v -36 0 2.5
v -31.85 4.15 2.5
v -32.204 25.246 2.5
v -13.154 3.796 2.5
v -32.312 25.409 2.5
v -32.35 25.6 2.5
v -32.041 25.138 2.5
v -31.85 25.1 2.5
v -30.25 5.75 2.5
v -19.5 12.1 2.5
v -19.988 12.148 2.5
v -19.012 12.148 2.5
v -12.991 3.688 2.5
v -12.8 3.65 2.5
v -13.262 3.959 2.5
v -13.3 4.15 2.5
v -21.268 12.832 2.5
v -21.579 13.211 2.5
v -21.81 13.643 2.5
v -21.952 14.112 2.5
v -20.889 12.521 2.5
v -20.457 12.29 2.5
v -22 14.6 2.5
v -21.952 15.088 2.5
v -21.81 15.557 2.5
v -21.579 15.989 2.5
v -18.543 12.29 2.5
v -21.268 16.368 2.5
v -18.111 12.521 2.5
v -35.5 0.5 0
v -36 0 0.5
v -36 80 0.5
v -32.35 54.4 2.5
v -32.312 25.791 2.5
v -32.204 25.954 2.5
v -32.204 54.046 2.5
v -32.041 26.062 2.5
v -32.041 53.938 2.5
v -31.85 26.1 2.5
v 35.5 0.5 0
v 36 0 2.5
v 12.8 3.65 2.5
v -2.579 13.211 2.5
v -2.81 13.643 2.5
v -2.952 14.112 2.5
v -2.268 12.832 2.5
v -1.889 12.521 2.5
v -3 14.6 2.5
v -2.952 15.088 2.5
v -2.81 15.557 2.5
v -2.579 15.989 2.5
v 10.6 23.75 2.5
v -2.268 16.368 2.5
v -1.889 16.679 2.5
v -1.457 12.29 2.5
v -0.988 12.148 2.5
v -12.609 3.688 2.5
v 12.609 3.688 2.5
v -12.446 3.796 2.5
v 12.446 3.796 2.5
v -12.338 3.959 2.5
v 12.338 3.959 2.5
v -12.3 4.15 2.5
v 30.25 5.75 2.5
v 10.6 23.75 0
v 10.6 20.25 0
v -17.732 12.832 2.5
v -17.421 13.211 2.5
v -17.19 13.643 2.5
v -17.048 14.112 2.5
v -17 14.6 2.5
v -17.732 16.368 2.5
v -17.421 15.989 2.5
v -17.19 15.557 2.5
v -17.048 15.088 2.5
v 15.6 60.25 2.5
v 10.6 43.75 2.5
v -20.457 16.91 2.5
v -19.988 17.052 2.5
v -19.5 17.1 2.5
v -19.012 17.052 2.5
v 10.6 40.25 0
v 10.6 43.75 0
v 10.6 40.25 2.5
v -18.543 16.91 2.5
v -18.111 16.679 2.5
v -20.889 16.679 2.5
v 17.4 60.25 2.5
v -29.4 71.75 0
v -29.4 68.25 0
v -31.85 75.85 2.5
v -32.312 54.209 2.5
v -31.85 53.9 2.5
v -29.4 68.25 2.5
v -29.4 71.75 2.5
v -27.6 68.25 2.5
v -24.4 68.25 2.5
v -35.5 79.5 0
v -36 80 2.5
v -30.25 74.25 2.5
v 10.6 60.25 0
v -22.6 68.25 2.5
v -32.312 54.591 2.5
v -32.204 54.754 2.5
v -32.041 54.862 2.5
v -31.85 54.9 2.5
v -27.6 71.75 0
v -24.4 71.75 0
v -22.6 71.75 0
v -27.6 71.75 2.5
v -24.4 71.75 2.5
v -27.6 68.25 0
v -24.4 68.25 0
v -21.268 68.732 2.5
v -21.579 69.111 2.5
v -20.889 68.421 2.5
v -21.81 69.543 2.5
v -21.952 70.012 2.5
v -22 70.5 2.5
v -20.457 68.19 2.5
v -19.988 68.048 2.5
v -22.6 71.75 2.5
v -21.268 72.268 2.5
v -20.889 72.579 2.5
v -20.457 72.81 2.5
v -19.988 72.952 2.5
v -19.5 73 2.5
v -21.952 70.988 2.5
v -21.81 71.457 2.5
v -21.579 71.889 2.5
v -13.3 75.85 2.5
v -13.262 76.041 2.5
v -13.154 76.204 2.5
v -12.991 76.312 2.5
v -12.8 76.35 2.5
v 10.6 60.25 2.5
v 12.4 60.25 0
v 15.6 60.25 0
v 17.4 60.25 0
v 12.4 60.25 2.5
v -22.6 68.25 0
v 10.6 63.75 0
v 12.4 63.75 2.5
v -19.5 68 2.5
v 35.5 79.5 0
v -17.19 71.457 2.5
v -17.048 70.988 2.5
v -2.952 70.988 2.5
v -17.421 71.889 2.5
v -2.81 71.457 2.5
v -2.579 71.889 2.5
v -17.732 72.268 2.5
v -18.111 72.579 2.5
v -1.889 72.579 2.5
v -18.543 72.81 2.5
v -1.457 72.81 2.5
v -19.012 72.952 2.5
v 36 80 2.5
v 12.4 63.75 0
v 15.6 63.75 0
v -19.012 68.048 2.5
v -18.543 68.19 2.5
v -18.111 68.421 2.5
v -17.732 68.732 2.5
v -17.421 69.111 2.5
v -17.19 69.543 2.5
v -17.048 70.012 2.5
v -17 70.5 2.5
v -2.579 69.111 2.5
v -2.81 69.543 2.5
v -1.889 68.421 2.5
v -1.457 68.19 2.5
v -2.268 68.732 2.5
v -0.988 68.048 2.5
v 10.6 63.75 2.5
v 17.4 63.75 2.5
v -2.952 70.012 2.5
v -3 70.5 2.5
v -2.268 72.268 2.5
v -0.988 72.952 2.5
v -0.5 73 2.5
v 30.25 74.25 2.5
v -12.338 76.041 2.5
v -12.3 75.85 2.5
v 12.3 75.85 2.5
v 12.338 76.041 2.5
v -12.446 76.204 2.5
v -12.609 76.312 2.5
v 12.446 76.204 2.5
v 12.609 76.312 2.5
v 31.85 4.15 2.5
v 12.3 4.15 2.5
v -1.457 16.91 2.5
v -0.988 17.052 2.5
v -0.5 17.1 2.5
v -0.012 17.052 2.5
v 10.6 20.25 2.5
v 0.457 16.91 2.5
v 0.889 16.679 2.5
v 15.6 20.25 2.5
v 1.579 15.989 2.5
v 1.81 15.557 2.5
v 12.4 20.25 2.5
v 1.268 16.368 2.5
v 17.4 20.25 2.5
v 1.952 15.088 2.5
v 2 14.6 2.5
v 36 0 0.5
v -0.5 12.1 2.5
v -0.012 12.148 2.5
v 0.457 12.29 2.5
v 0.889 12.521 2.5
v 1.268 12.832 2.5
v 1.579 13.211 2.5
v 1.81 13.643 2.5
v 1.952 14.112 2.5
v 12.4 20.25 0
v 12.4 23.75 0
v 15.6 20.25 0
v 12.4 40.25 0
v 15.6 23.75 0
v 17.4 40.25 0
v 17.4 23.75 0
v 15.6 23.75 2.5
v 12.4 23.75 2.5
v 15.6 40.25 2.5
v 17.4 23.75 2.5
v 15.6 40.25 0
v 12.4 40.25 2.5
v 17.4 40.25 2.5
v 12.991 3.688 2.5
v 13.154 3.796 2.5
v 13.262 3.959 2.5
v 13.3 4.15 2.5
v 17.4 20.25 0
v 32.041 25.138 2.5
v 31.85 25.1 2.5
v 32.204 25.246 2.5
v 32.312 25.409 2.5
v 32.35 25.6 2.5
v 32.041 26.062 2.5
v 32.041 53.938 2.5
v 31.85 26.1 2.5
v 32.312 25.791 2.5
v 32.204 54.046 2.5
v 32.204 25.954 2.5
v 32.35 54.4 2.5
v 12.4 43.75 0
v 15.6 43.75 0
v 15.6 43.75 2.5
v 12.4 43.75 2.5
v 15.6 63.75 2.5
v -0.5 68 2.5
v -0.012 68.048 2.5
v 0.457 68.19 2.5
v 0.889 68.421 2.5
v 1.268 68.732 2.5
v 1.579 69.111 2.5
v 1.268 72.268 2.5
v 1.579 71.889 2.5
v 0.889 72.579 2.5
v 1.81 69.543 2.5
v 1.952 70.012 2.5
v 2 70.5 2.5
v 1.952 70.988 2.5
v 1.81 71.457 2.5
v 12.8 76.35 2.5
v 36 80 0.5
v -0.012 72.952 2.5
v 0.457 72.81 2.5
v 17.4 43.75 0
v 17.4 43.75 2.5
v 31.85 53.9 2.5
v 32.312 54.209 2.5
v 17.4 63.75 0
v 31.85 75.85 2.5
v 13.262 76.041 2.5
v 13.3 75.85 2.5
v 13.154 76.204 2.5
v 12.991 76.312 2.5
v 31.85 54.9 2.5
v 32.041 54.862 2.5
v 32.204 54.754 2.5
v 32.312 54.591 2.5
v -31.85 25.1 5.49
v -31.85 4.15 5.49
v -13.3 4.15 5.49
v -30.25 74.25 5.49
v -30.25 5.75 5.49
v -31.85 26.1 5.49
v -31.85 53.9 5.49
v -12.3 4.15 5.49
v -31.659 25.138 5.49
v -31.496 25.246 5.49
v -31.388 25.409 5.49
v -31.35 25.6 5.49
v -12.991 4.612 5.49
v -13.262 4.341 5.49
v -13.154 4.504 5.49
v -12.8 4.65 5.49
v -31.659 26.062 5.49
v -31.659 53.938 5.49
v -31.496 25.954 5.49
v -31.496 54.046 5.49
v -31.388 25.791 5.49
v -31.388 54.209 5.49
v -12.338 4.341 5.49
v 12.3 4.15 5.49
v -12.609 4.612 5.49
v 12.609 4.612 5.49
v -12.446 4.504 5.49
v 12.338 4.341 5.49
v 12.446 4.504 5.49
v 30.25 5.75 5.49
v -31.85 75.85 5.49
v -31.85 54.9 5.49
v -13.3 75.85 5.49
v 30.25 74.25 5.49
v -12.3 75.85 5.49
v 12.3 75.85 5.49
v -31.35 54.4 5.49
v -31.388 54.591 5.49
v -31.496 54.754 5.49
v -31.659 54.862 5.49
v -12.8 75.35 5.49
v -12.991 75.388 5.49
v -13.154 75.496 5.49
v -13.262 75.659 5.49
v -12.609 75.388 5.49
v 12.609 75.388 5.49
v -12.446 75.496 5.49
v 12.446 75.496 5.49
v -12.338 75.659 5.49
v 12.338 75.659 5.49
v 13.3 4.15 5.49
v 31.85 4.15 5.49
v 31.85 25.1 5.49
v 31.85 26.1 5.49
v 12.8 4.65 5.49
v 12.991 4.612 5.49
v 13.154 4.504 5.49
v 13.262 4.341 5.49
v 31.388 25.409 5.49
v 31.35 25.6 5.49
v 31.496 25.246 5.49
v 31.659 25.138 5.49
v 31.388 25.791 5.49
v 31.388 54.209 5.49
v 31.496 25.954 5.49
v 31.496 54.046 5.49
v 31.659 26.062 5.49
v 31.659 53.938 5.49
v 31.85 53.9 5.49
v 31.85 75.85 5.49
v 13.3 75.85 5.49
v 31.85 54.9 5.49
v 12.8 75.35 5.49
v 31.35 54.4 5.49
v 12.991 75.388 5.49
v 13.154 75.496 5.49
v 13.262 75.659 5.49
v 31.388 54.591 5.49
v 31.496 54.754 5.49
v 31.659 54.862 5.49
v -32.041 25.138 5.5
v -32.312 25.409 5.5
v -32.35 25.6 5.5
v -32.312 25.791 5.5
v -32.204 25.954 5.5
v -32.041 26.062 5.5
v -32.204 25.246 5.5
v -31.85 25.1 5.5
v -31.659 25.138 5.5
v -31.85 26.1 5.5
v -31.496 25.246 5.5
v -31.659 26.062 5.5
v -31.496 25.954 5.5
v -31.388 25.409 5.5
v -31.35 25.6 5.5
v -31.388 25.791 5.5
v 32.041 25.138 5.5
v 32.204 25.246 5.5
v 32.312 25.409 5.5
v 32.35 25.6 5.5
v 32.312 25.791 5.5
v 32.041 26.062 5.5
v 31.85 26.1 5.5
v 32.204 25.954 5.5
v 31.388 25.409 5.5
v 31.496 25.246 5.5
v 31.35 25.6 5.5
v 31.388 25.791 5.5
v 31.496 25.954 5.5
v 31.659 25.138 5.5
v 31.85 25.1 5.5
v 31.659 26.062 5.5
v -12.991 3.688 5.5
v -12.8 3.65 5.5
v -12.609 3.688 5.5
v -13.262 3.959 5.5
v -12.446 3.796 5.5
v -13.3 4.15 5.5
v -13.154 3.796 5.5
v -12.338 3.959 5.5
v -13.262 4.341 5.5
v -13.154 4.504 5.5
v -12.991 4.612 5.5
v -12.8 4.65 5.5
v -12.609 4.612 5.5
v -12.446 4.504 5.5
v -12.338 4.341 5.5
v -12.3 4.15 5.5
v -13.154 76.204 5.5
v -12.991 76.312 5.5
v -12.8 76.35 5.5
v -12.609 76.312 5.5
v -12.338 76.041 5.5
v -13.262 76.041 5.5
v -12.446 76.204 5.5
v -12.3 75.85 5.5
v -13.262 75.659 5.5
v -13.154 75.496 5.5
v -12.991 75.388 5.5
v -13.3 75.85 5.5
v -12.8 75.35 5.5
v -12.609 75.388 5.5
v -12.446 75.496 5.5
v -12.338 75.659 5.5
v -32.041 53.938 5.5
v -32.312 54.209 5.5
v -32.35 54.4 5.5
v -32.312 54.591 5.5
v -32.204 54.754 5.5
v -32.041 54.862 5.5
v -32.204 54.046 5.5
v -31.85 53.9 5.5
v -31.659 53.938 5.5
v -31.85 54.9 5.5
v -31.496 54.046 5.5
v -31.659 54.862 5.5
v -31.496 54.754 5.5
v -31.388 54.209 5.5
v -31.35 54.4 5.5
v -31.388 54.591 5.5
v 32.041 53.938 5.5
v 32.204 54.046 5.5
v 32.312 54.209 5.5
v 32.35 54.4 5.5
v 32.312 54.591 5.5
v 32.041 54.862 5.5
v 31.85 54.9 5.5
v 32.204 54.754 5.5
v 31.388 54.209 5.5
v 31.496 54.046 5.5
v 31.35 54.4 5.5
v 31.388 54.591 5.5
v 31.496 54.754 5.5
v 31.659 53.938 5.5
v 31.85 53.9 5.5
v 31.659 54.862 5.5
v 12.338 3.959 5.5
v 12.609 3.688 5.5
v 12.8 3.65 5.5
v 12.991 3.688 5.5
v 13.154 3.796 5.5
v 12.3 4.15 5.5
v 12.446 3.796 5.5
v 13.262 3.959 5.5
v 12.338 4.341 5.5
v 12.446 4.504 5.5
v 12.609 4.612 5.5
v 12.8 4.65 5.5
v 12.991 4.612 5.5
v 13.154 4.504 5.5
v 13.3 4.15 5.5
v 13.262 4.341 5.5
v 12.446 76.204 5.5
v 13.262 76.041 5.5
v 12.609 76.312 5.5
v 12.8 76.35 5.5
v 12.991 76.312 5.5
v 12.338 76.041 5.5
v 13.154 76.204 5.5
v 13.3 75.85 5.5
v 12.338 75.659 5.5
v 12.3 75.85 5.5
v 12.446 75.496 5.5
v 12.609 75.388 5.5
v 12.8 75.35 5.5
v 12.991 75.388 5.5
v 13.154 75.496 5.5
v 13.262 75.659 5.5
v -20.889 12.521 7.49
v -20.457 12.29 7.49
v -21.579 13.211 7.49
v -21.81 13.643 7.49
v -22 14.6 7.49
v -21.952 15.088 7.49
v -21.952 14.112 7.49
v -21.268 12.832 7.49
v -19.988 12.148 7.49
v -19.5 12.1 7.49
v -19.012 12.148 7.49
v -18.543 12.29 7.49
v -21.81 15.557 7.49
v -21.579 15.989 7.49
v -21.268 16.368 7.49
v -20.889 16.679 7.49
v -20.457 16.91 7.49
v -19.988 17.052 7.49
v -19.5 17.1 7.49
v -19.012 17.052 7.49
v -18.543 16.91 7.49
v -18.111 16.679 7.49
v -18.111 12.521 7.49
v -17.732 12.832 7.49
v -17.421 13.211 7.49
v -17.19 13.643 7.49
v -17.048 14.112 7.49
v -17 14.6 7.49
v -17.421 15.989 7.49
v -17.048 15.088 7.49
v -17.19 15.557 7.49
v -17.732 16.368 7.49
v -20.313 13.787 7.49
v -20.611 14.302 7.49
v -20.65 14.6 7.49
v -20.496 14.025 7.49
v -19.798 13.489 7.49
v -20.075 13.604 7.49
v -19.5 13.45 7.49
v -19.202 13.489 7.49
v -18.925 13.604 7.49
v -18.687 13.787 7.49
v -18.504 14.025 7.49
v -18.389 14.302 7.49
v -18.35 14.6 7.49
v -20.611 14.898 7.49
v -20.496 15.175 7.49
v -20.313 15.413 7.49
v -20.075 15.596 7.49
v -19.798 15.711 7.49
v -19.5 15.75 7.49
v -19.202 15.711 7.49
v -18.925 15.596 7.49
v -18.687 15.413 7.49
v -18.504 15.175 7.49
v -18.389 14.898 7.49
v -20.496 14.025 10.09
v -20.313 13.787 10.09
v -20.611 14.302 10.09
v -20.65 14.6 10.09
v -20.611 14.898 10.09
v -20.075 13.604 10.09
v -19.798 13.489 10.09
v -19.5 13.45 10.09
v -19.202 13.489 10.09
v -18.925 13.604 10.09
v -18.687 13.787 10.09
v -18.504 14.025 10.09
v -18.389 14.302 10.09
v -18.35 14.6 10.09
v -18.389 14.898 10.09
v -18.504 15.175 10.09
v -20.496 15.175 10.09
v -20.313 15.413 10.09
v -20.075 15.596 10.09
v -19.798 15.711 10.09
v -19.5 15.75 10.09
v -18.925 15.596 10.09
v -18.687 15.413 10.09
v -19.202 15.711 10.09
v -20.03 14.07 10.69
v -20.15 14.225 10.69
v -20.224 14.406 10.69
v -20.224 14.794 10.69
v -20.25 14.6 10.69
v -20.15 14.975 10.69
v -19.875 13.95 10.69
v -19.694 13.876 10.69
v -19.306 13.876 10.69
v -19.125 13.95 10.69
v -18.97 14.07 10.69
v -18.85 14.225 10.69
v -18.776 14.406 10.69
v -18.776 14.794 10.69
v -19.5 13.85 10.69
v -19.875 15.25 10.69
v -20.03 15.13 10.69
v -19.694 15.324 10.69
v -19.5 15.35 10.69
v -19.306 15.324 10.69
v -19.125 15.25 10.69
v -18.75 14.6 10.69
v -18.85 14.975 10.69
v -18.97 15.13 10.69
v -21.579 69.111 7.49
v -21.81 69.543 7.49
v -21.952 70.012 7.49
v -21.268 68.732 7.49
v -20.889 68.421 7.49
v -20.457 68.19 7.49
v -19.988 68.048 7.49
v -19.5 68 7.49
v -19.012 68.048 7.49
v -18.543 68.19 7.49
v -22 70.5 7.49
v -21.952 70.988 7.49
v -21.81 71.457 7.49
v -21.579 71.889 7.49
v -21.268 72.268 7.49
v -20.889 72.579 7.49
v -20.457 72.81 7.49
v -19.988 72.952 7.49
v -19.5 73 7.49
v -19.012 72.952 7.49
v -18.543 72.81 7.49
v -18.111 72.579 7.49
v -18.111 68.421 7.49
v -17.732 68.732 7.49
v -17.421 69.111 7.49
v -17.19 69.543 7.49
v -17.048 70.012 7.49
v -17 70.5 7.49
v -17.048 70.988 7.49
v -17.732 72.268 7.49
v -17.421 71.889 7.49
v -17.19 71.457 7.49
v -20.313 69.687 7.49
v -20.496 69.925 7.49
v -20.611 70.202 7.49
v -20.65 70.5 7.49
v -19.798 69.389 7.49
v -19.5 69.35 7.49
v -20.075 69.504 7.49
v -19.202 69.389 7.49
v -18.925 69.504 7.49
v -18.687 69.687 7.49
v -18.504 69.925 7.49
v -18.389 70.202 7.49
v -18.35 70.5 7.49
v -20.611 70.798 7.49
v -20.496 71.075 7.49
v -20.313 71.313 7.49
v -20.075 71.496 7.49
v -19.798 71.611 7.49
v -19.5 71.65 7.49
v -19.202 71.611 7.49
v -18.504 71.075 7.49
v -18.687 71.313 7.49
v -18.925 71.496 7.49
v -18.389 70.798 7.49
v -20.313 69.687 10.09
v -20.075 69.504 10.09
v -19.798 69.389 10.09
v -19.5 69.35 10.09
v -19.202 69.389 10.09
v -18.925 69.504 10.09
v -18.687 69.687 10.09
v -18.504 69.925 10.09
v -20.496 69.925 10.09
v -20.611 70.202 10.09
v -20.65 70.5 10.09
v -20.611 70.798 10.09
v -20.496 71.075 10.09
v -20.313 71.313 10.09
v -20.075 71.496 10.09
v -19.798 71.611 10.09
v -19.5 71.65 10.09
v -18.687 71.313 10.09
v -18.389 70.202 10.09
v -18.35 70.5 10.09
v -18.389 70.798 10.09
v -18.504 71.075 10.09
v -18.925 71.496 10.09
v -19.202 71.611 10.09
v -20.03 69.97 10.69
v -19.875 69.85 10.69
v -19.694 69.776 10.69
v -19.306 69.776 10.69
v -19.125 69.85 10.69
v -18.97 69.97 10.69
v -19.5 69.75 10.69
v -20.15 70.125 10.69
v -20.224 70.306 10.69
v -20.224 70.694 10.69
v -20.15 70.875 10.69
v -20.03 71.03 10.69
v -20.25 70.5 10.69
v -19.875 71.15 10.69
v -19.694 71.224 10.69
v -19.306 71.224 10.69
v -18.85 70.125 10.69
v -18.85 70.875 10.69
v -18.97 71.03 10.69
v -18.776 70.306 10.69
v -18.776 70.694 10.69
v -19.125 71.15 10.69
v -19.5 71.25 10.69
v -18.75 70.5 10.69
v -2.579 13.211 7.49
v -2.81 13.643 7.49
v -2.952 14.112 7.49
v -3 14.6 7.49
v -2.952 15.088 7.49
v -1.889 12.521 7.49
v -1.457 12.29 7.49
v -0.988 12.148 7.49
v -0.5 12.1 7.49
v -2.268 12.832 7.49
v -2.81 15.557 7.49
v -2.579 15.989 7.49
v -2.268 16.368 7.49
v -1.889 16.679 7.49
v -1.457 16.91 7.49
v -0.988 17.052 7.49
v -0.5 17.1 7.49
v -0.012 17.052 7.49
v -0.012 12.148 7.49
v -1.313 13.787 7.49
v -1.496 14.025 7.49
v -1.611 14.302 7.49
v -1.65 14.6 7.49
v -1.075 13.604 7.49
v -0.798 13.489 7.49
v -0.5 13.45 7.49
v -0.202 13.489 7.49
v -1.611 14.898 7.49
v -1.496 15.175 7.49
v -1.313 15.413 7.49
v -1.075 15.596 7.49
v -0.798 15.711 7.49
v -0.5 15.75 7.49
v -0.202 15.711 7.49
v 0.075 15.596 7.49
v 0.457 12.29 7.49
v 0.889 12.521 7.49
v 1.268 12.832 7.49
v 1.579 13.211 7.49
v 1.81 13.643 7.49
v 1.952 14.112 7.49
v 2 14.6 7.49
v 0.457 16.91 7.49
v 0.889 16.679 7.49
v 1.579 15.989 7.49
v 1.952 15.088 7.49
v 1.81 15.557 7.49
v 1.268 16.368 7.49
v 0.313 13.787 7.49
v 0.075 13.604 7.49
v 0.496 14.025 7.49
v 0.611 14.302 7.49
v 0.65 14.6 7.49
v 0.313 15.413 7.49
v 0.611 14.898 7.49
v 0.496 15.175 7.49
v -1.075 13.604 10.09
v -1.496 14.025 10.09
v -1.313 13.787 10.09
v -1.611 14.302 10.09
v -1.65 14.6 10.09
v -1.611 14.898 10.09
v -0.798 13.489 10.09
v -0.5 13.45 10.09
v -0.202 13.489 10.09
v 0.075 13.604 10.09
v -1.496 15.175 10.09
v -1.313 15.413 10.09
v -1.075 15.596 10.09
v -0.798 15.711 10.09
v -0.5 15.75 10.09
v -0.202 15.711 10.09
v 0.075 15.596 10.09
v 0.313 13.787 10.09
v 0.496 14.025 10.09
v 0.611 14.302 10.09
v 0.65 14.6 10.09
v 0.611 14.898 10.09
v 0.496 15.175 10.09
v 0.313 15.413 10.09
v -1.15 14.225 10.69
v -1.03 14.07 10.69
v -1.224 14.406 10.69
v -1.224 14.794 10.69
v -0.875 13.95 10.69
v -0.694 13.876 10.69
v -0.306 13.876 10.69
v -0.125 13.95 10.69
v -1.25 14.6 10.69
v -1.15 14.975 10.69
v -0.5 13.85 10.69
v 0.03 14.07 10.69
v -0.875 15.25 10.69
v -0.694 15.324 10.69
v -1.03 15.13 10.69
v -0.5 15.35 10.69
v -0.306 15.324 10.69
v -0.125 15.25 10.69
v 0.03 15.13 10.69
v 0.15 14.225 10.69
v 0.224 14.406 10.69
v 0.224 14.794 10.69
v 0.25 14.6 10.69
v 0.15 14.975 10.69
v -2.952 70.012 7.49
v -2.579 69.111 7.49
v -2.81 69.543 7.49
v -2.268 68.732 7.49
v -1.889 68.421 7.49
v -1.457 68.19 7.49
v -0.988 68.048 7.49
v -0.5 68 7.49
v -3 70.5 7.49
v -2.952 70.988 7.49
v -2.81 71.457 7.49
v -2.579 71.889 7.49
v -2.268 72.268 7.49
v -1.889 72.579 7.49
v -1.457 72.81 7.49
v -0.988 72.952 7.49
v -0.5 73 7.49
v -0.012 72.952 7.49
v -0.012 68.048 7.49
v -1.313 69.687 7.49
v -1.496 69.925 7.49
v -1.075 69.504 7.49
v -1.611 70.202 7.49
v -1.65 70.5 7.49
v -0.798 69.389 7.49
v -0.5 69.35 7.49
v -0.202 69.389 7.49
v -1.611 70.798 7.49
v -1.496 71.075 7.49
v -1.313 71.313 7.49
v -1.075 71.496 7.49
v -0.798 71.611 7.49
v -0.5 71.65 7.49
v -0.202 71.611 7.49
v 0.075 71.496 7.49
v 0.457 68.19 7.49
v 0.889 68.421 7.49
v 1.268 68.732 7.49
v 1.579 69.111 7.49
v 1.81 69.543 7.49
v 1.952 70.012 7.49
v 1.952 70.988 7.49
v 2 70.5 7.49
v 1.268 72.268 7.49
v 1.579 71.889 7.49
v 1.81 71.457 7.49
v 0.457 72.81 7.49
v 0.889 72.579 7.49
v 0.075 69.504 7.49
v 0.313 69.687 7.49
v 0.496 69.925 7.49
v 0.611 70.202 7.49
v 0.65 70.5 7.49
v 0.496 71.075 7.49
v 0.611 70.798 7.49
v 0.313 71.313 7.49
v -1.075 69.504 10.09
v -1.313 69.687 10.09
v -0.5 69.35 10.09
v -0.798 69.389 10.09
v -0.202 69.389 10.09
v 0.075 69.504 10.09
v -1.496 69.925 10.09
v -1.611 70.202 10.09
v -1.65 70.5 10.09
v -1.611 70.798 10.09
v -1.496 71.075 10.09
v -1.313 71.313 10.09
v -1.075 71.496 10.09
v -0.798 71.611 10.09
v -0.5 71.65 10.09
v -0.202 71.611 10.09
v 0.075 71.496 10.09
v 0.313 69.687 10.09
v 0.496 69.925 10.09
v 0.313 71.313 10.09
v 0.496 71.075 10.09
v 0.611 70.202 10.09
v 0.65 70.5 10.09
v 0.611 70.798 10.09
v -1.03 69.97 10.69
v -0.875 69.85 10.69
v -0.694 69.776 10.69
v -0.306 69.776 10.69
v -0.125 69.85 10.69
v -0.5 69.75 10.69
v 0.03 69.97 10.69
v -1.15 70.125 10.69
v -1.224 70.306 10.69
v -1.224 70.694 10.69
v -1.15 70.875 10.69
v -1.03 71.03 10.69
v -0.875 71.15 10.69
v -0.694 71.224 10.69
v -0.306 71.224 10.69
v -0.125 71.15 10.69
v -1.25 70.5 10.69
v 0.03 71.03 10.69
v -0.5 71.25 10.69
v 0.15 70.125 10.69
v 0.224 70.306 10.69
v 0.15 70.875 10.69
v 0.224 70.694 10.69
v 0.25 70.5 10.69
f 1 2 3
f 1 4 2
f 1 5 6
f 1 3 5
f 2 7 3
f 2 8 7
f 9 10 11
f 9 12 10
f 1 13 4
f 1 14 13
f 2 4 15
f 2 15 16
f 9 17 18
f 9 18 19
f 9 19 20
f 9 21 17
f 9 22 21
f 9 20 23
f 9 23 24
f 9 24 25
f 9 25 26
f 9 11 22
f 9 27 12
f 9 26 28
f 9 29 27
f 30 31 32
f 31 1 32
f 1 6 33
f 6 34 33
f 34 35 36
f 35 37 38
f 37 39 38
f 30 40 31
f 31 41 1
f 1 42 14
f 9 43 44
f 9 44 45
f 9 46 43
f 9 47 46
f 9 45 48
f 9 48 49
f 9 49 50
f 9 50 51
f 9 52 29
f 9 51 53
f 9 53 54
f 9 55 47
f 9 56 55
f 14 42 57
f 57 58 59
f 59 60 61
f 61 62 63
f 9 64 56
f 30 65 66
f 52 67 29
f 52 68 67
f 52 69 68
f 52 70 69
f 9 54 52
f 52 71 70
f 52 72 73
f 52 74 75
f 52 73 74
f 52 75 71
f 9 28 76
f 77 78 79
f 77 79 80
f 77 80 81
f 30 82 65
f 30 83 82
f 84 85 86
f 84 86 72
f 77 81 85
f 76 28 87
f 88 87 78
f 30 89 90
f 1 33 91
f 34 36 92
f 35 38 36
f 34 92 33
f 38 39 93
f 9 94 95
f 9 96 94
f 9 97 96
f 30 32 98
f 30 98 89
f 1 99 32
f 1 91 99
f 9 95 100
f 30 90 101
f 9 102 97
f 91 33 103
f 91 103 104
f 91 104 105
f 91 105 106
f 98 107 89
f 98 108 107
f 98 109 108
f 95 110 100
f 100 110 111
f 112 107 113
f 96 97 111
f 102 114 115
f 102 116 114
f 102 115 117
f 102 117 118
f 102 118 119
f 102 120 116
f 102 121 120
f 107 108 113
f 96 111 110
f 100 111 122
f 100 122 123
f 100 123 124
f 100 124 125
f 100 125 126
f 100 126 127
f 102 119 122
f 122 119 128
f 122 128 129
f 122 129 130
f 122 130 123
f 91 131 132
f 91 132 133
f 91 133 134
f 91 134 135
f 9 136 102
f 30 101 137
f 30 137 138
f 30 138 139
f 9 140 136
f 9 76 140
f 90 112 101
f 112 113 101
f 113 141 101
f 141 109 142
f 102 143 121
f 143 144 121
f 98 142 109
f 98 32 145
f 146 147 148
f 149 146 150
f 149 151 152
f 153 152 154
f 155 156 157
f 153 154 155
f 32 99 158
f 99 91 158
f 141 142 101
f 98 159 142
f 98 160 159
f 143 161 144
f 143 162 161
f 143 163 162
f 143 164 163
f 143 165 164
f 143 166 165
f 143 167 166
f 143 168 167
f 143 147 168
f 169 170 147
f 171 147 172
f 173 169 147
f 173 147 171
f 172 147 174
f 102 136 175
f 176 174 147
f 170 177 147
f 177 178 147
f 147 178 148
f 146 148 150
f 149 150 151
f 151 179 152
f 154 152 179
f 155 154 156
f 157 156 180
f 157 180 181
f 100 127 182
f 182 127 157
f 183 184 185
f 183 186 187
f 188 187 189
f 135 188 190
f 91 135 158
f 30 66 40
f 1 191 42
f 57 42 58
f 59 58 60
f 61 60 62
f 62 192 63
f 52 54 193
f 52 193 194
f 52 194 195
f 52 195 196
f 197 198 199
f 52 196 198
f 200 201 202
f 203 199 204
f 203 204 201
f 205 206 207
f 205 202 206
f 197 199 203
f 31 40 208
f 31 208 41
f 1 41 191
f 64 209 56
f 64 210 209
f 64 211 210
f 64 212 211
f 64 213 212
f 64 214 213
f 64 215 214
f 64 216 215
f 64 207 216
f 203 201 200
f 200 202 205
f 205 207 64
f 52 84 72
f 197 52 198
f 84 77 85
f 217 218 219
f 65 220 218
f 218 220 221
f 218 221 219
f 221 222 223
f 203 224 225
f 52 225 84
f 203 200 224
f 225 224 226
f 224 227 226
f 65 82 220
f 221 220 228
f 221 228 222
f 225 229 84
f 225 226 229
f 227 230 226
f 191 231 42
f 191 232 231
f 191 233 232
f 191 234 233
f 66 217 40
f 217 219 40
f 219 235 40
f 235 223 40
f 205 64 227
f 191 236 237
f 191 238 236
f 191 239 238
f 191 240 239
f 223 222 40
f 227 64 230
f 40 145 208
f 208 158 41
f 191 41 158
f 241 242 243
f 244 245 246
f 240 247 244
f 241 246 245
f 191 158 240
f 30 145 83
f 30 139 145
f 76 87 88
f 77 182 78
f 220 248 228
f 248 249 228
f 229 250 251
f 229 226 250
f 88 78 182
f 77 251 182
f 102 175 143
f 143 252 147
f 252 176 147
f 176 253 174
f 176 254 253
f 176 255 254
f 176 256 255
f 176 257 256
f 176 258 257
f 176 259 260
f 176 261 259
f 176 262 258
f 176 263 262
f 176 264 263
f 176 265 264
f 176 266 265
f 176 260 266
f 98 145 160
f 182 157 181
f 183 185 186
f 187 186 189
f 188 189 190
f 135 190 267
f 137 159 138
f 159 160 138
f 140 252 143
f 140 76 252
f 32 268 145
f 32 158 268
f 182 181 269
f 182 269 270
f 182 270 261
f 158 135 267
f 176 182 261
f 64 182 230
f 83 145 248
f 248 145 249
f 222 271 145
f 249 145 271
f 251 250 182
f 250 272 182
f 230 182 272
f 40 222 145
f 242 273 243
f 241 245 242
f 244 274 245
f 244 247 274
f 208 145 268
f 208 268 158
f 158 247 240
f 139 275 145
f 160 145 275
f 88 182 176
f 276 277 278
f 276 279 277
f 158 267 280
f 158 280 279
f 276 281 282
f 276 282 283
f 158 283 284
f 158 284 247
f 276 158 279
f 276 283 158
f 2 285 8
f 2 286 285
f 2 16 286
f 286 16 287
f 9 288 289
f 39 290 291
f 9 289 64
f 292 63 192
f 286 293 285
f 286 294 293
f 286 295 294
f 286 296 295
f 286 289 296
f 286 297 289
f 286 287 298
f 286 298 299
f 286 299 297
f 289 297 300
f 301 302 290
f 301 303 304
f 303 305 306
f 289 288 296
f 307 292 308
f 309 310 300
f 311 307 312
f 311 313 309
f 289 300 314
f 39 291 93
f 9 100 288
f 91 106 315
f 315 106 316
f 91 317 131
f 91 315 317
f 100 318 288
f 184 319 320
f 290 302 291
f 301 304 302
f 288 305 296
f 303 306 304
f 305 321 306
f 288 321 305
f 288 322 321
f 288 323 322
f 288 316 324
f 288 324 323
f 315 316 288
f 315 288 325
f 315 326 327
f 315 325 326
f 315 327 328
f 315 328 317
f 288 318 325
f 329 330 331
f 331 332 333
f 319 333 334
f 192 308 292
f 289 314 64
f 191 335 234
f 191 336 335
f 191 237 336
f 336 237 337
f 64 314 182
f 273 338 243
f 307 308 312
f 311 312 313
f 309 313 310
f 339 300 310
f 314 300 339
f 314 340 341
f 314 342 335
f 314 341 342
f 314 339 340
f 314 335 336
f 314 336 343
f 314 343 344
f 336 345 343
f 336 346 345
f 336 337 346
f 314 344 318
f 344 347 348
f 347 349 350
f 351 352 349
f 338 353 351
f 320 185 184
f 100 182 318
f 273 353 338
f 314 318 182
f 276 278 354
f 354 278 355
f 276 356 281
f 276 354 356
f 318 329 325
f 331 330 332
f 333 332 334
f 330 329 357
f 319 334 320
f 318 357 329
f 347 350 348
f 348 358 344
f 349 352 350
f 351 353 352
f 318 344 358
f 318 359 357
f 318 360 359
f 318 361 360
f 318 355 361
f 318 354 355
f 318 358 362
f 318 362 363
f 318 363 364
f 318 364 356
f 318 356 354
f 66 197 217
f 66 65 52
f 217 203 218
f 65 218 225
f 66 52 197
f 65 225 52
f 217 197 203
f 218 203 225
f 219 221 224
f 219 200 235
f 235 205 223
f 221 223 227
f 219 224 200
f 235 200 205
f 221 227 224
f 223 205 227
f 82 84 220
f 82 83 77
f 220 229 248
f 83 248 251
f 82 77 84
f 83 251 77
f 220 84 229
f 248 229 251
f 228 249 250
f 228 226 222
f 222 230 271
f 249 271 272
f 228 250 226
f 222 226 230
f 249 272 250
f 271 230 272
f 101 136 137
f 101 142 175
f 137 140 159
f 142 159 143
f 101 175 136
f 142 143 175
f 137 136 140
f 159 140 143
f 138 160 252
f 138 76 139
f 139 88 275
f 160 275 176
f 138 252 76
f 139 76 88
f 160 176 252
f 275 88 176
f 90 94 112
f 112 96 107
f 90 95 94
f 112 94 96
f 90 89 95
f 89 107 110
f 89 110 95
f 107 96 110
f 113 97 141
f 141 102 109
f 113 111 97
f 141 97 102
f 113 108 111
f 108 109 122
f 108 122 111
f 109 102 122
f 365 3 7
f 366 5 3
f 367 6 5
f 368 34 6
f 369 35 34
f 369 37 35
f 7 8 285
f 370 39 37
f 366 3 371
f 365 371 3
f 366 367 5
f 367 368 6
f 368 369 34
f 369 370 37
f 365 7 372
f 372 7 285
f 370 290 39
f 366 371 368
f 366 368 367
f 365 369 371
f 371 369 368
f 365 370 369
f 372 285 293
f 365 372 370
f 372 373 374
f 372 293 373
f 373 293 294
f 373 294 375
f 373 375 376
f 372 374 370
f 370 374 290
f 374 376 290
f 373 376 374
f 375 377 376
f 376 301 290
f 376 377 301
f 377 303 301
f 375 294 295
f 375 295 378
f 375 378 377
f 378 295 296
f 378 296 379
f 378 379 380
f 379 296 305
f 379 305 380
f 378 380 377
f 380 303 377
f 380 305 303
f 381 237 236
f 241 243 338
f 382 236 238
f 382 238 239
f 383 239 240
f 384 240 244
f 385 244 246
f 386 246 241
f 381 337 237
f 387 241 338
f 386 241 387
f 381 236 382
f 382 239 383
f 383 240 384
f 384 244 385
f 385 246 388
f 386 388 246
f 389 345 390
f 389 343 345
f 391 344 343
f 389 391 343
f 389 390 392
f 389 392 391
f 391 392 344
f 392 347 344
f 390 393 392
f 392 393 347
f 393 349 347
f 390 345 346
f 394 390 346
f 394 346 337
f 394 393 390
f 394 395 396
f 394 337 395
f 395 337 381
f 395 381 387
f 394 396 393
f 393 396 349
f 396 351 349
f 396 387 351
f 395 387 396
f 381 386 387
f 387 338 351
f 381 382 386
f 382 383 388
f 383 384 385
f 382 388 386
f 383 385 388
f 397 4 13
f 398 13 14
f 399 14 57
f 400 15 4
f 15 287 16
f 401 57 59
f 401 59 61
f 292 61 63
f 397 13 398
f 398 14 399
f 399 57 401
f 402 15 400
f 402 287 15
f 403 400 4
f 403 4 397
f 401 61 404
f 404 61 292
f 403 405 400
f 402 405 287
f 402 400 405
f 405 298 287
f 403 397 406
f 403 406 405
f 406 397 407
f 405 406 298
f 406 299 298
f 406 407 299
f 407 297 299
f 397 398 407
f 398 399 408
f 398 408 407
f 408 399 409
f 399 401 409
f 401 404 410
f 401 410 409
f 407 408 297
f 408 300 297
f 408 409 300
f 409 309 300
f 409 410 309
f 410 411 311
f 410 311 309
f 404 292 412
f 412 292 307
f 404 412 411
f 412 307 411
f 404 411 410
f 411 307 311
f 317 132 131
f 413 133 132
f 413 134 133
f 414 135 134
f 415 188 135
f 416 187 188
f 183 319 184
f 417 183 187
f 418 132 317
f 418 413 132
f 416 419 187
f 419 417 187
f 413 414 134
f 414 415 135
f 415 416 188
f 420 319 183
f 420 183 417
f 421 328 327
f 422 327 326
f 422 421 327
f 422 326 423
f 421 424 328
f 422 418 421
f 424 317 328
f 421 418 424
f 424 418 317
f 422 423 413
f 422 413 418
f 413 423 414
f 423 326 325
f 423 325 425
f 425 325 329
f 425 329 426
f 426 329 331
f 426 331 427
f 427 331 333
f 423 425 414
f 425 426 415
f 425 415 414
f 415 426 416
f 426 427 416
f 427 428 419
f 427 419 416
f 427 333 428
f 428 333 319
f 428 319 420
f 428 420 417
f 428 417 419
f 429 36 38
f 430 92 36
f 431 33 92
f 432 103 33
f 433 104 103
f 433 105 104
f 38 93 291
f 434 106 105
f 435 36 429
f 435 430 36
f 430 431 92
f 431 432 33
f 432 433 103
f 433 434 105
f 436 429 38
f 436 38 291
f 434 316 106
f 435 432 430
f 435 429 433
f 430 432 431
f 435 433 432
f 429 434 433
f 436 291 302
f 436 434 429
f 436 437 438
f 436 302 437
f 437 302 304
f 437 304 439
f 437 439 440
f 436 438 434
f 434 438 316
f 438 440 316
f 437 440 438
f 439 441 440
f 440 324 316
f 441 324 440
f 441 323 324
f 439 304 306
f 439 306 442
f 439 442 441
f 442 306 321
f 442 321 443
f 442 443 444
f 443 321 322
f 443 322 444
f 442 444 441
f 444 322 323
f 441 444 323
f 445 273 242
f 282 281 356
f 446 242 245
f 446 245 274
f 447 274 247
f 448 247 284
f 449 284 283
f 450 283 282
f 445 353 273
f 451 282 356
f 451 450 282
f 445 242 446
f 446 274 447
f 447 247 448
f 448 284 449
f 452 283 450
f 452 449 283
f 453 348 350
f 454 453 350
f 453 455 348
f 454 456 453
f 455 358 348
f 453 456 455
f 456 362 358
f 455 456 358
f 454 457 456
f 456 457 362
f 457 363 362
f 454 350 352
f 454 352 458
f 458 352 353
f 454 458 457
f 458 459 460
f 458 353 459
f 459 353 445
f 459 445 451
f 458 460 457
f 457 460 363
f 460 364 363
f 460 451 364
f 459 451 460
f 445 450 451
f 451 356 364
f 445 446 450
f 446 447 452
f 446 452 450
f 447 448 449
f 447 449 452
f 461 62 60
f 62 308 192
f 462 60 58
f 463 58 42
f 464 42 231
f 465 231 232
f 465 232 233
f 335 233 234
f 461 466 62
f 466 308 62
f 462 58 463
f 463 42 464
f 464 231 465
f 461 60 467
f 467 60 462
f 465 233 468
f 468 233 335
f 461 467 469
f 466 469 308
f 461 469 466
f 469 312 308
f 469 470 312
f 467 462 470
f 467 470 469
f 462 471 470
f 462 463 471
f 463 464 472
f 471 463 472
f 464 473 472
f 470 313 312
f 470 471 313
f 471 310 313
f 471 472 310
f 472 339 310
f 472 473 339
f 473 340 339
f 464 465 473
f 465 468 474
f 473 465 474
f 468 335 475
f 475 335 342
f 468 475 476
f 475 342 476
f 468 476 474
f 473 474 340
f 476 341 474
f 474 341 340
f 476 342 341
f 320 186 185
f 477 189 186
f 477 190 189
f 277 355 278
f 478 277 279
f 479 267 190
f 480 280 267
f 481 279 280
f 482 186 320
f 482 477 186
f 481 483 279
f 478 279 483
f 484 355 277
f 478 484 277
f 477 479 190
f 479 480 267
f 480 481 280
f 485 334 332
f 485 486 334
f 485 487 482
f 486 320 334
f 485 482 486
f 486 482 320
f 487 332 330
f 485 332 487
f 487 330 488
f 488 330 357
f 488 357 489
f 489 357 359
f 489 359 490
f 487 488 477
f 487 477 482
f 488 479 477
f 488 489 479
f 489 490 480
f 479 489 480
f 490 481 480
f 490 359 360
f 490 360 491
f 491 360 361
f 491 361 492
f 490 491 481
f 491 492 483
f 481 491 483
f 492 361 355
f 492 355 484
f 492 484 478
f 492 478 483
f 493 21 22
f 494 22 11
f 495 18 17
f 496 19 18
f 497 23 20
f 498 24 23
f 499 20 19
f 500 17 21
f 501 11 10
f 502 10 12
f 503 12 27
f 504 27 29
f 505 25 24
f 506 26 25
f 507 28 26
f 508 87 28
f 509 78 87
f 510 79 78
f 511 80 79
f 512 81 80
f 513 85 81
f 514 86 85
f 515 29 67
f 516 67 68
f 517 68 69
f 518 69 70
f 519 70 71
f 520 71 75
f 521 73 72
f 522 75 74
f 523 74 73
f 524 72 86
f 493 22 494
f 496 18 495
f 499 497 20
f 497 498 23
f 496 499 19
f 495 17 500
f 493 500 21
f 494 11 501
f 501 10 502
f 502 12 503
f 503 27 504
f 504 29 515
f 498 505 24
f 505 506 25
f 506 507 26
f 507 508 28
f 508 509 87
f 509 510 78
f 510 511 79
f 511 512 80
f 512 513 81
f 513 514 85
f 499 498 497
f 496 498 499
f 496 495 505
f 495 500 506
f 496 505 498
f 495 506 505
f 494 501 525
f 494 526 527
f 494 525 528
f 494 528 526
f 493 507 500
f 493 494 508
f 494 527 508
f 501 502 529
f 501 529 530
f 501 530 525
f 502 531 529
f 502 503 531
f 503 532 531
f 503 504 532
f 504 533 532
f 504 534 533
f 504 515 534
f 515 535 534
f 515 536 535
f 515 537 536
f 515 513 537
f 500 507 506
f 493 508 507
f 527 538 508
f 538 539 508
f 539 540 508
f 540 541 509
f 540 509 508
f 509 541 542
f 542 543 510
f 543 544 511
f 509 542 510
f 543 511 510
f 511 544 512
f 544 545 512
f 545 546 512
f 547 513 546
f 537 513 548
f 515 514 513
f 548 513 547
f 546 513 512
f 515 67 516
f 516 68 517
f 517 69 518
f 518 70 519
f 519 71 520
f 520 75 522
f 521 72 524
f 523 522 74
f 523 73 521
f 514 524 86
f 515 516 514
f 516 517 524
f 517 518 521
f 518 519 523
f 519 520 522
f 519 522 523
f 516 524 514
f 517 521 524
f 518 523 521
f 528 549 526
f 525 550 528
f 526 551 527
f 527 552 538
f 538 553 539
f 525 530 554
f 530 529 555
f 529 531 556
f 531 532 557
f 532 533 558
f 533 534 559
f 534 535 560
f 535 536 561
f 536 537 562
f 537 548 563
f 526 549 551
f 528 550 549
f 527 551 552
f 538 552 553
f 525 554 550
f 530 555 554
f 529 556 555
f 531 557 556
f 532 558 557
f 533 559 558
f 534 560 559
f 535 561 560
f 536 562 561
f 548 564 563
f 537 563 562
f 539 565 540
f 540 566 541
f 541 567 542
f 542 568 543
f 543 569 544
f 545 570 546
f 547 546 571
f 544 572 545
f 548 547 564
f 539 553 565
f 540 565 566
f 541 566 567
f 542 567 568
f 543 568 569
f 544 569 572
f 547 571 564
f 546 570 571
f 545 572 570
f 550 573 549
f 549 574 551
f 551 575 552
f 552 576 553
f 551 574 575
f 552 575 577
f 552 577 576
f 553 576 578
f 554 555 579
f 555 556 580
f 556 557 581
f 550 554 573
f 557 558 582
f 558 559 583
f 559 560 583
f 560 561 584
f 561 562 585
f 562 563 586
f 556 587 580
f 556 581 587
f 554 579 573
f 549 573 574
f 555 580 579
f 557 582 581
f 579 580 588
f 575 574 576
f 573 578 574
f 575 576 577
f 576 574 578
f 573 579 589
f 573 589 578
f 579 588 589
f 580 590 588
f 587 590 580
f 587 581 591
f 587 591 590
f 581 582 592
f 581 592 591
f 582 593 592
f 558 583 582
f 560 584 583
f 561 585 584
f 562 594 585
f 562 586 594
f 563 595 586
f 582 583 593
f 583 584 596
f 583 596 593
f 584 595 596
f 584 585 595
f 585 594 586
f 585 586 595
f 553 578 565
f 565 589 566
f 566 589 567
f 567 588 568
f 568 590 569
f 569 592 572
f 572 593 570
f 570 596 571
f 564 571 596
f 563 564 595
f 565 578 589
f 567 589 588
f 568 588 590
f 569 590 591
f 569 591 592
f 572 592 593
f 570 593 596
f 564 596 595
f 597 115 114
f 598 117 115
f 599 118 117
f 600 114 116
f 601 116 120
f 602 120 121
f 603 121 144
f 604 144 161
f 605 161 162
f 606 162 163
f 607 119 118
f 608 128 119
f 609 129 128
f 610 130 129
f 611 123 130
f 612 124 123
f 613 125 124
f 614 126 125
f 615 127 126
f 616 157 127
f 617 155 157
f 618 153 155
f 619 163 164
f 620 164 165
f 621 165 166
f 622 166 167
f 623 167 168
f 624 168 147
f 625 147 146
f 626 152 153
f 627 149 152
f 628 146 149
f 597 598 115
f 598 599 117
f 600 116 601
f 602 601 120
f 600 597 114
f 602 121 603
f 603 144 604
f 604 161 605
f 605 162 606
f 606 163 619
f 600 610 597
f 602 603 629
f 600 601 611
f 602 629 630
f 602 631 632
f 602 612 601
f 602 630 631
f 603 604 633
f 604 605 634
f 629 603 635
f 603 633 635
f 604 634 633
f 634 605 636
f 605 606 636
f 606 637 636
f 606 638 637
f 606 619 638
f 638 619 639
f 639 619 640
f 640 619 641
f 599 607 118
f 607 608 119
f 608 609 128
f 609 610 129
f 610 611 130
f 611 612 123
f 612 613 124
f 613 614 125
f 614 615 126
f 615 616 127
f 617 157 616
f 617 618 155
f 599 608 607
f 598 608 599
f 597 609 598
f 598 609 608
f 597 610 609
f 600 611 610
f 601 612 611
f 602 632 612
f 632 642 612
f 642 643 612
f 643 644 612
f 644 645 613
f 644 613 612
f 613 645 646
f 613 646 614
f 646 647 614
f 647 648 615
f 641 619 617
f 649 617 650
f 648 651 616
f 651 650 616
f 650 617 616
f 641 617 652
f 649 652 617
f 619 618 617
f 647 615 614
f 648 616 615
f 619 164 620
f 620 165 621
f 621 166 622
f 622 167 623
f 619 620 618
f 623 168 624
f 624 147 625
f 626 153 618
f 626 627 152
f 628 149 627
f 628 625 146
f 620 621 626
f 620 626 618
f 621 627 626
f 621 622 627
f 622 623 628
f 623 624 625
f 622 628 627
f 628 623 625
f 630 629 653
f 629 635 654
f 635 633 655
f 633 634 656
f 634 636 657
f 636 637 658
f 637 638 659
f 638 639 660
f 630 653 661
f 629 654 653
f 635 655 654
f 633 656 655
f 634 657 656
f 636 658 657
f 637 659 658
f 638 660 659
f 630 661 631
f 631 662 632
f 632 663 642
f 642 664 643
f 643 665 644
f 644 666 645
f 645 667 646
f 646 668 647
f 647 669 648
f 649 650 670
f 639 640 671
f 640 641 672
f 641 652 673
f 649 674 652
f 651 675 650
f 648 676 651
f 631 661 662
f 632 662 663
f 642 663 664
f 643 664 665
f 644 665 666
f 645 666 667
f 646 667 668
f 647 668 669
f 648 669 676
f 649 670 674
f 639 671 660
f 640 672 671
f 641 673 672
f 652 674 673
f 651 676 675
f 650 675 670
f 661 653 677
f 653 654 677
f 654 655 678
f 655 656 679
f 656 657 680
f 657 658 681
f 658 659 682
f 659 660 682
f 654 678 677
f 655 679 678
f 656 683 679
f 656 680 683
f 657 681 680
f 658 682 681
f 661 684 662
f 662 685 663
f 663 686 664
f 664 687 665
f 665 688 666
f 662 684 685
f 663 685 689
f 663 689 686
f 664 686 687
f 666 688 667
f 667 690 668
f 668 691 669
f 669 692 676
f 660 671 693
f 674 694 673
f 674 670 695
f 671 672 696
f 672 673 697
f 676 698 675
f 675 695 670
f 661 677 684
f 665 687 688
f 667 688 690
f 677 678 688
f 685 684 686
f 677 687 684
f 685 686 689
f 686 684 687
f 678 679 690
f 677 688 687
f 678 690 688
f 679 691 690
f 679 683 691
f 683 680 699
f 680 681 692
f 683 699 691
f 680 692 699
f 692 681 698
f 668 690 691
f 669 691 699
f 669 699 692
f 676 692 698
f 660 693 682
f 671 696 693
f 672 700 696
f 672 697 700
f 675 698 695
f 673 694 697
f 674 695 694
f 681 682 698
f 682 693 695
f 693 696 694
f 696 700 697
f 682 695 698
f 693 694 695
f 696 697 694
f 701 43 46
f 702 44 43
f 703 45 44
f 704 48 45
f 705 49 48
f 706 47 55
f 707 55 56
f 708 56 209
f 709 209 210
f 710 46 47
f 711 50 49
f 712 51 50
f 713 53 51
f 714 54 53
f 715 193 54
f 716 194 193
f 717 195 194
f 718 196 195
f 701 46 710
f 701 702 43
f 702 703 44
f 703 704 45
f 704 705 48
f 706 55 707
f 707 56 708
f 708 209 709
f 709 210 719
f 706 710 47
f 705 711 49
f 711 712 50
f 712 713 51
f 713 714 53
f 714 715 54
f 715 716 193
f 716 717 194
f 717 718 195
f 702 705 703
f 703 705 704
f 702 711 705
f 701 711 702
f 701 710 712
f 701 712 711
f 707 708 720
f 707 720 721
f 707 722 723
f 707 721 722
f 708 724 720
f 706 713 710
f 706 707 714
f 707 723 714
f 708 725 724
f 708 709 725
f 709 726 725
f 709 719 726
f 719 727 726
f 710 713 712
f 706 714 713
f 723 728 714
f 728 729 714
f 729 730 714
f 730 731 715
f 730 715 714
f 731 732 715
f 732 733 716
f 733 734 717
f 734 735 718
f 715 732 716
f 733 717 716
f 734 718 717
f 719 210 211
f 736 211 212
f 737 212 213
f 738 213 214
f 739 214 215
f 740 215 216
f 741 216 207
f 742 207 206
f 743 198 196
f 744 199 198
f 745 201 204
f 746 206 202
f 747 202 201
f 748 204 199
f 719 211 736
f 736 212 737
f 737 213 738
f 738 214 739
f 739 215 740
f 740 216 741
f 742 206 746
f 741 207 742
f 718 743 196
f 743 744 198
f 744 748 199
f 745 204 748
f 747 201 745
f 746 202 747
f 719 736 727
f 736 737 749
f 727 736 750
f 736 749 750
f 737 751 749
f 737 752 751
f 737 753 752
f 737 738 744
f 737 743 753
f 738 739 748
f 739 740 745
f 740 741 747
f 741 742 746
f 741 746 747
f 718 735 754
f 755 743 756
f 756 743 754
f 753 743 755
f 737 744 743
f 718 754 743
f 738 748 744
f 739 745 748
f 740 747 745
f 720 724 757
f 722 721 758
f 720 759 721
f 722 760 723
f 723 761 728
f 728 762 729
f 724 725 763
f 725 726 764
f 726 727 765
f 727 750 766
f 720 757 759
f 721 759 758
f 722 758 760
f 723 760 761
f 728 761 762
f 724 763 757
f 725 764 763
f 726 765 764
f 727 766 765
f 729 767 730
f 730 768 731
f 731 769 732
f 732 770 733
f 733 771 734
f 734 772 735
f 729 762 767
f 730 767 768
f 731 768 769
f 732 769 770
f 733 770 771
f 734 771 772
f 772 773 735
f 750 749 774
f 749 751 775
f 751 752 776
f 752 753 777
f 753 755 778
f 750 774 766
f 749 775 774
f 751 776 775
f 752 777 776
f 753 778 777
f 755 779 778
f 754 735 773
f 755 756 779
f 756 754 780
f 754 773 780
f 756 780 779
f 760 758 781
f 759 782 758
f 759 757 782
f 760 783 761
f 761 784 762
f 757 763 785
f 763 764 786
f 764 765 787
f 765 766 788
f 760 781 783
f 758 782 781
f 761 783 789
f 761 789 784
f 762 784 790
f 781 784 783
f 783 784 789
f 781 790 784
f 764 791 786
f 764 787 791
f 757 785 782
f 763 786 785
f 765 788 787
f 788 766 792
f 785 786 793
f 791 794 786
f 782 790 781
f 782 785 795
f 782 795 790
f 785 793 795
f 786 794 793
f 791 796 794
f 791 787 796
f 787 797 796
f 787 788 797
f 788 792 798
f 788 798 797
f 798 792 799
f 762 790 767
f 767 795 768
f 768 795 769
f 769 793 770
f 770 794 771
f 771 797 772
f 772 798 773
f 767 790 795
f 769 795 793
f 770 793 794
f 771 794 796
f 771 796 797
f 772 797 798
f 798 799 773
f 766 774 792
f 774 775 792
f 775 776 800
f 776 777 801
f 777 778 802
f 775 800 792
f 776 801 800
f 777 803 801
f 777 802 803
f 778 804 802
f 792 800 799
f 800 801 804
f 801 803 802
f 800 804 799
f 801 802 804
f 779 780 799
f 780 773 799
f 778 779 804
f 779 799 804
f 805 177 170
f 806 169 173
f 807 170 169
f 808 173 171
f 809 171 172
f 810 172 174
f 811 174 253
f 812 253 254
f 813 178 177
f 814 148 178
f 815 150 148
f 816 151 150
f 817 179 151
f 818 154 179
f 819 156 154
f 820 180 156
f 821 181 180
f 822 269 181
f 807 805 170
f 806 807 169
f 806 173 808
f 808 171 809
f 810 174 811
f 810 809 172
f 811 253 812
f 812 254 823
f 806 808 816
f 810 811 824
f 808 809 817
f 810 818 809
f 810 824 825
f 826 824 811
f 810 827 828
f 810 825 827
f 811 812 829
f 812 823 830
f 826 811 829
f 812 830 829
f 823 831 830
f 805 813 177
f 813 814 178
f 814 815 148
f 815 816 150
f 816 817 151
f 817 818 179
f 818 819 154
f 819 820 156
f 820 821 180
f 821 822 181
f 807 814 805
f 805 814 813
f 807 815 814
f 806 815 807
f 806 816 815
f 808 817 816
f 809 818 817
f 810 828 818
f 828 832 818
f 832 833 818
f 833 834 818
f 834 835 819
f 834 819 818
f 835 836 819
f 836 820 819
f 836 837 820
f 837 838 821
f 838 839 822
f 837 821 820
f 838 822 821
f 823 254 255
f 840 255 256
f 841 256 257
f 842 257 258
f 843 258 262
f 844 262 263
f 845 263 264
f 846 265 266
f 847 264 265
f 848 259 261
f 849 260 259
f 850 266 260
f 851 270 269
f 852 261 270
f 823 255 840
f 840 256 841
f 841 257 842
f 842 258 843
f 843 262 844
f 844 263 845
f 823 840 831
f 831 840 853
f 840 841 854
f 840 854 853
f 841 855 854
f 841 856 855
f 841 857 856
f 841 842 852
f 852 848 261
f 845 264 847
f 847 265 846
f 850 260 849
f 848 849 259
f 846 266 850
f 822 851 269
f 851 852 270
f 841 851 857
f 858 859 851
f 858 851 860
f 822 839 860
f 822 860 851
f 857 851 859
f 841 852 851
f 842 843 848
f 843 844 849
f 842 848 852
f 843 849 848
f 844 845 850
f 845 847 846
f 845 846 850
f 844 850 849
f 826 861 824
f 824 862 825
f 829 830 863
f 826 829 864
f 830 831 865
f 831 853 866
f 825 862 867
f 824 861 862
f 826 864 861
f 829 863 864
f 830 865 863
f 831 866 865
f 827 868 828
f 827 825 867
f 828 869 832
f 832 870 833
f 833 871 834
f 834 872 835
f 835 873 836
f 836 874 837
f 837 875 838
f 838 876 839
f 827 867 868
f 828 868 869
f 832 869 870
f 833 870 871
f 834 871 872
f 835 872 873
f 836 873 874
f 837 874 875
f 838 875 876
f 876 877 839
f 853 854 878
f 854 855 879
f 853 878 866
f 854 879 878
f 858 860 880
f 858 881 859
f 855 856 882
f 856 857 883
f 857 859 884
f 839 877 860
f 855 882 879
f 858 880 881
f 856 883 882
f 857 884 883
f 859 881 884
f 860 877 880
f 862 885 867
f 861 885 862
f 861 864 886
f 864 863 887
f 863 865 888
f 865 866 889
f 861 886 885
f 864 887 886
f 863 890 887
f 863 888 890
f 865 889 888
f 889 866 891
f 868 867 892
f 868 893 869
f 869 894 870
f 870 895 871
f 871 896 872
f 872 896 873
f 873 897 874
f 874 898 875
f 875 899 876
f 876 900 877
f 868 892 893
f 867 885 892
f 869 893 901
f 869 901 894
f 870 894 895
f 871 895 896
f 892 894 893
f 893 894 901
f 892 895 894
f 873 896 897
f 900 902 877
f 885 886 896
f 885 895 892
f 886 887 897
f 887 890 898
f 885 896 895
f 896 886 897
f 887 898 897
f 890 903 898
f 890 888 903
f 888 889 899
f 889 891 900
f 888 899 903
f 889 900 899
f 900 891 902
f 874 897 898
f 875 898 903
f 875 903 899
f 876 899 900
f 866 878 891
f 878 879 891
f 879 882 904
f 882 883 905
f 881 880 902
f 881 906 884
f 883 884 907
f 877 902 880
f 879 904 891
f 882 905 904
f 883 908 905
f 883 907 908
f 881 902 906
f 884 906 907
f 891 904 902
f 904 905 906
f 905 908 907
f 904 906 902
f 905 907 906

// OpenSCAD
// file: gh_s37d.scad
// Tiny Engineer parts adapted from the EMAX ES9051 export to fit a GH-S37D servo.
//
// The ES9051 and GH-S37D are close in size. The main difference is the
// mounting-tab span, so each servo pocket's tab slot is lengthened at both
// ends. Everything else is the unchanged ES9051 mesh.
//
// Change the sizes below to match your servo (measure with calipers), then
// run ./build.sh to regenerate the STLs.

// ── GH-S37D sizes (mm) ──────────────────────────────────────────────────────
servo_body_width  = 20;    // body length, tabs not included
servo_mount_width = 5.45;  // how far each tab sticks out from the body (5.2 from listings was too short)
clearance         = 0.3;   // gap per side, same as the original model

// ES9051 values the base meshes were exported with (do not change)
base_body_width   = 20;
base_mount_width  = 4.6;

// ── Tab slots in the ES9051 meshes ─────────────────────────────────────────
// Found by measuring the meshes. All slots run along X.
// [center_x, half_span, [y_min, y_max], [z_min, z_max]]
// The y/z ranges include the open side the servo is dropped in from.
slots = [
    ["Chest", [
        [-0.950, 14.900, [-21.30, -19.60], [16.30, 27.82]],   // arm servo
        [-0.950, 14.900, [19.60, 21.30], [16.30, 27.82]],     // arm servo
        [-0.950, 14.900, [-4.70, 4.70], [19.90, 27.82]]       // neck servo
    ]],
];

new_half_span = servo_body_width / 2 + servo_mount_width + clearance;

function slots_for(part) = [for (s = slots) if (s[0] == part) s[1]][0];

// Cut both ends of each tab slot out to the new span.
// If the new span is shorter, nothing is cut (the servo still fits).
module tab_slot_extensions(part) {
    eps = 0.01;
    for (s = slots_for(part)) {
        cx = s[0]; hs = s[1]; y = s[2]; z = s[3];
        if (new_half_span > hs)
            for (dir = [-1, 1]) {
                x0 = cx + dir * (hs - eps);
                x1 = cx + dir * new_half_span;
                // eps overlap on y/z keeps the cut from sharing faces with
                // the slot walls, which gives clean manifold output
                translate([min(x0, x1), y[0] - eps, z[0] - eps])
                    cube([abs(x1 - x0), y[1] - y[0] + 2 * eps, z[1] - z[0] + 2 * eps]);
            }
    }
}

module adapted_part(part) {
    difference() {
        import(str("base/es9051/", part, ".stl"), convexity = 10);
        tab_slot_extensions(part);
    }
}
// file: torso_body.scad
// Boxy torso, styled like improve_robot.jpg. Used by Torso.scad, the desk
// parts and RobotScene.scad.
//
// The top is the original Chest (with the GH-S37D tab slots from gh_s37d.scad),
// unchanged: the two arm servos lie in it with their shafts out the sides, and
// the neck servo stands in the middle, shaft up. So the arms and the M5Dial
// head mount exactly as before. Under it is a new hollow lower body that
// replaces Belly, BellyJoint, Bell and the Chair. Its open bottom drops into
// the socket in the desk top (see desk_parts.scad), with no screws.
//
// Arm clearance: the one-piece forearms lean in so the hands meet in front of
// the body. So the Chest's side scoops are kept, and the lower body's front is
// set back 3 mm, with a 45-degree slope up to the Chest's front so it
// prints without supports. The arms clear the body from straight up down to about 40
// degrees below horizontal toward the front (the typing pose). They can't hang
// straight down, same as with the original Belly.
//
// Cables: the servo cables go down through the Chest's holes into the lower
// body and out the open bottom into the desk. The Dial's cables run down a
// groove in the back, which carries on into the desk socket.
//
// Torso frame (same as Chest): +x front, +y robot width, +z up. The Chest's
// bottom is at z = 0. The neck servo shaft is at x = neck_shaft_x, y = 0.

include <gh_s37d.scad>

// ── Chest outline (measured from Chest.stl) ────────────────────────────────
chest_half   = [17.35, 28];   // half depth (x), half width (y)
chest_top    = 25.7;
corner_r     = 2;             // vertical edge radius
neck_shaft_x = -6.55;         // neck servo shaft (cable end of the pocket is +x)
arm_shaft    = [4.65, 21];    // arm servo shafts: x, z (out the sides at y = +-28)

// ── Lower body ─────────────────────────────────────────────────────────────
body_h       = 32;            // below the Chest
body_front   = 14.35;         // lower body front face (the Chest's is at 17.35)
step_h       = chest_half[0] - body_front;   // height of the 45-degree slope up to the Chest
seam_z       = -step_h - 1.5; // seam line, just below the slope
body_wall    = 2.5;
roof_apex    = -3;            // top of the hollow inside, a 45-degree gable roof
roof_x       = 3.45;          // ridge line, under the Chest's cable holes
sink         = 8;             // how far the torso sits down into the desk socket
bottom_chamfer = 0.6;

// ── Cable groove for the Dial (back face) ──────────────────────────────────
groove_y     = [-12.5, -6];   // clear of the Chest's screw holes and neck tab slot
groove_d     = 3.5;

torso_bottom = -body_h;

module footprint(inset = 0) {
    offset(r = corner_r - inset) offset(delta = -corner_r)
        square(2 * chest_half, center = true);
}

// lower body outline: the Chest's, with the front set back
module body_footprint(inset = 0) {
    offset(r = corner_r - inset) offset(delta = -corner_r)
        translate([-chest_half[0], -chest_half[1]]) square([chest_half[0] + body_front, 2 * chest_half[1]]);
}

// The Chest's inside holes: cable holes, neck pocket and its cable slot
module inner_holes_2d() {
    intersection() { chest_holes_2d(); square([29, 39.6], center = true); }
}

// The Chest's holes at z = 8 (cable holes, neck pocket, screw holes), plus
// everything outside its outline.
module chest_holes_2d() {
    difference() {
        square(2 * chest_half + [2, 2], center = true);
        projection(cut = true) translate([0, 0, -8]) adapted_part("Chest");
    }
}

// Hollow inside the lower body: vertical walls, then a 45-degree gable roof
// with its ridge along y, so it prints without supports.
module body_cavity() {
    hw = chest_half[1] - body_wall;
    intersection() {
        translate([0, 0, torso_bottom - 1])
            linear_extrude(body_h + roof_apex + 1) body_footprint(body_wall);
        translate([roof_x, 0, roof_apex]) rotate([90, 0, 0])
            linear_extrude(2 * hw + 2, center = true)
                polygon([[-100, -100], [0, 0], [100, -100]]);
    }
}

module seam(z) {
    translate([0, 0, z - 0.4]) linear_extrude(0.8)
        difference() { body_footprint(-1); body_footprint(0.6); }
}

// Details from the picture. Front is +x; the viewer's right is +y.
module details() {
    fx = body_front;
    cx = chest_half[0];
    // seam between the chest and the lower body, and the panel lines
    seam(seam_z);
    translate([fx - 0.6, -21, -21]) cube([1, 31, 0.7]);           // panel bottom
    translate([fx - 0.6, -21, -6]) cube([1, 31, 0.7]);            // panel top
    translate([fx - 0.6, -21, -21]) cube([1, 0.7, 15.7]);         // panel left
    translate([fx - 0.6, 9.3, -21]) cube([1, 0.7, 15.7]);         // panel right
    translate([fx - 0.6, 13, -21]) cube([1, 0.7, 18]);            // long line on the right
    translate([cx - 0.6, 13, 0.5]) cube([1, 0.7, 12]);            // ...carried on up the chest
    // three vent slots, top right of the chest front
    for (i = [0 : 2]) translate([cx - 1, 9, 15 + i * 2.6]) cube([2, 11, 1.2]);
    // speaker grille, bottom right
    for (i = [0 : 3], j = [0 : 2])
        translate([fx + 1, 16 + i * 2.2, -21 + j * 2.2]) rotate([0, -90, 0]) cylinder(d = 1.2, h = 2, $fn = 12);
    // vent slots on both sides of the lower body
    for (s = [-1, 1], i = [0 : 3])
        translate([-8, s * chest_half[1] - 1, -18 + i * 3]) cube([12, 2, 1.2]);
}

// groove down the back, from the top to the bottom
module dial_cable_path() {
    translate([-chest_half[0] - 1, groove_y[0], torso_bottom - 1])
        cube([groove_d + 1, groove_y[1] - groove_y[0], chest_top + body_h + 2]);
}

module torso() {
    difference() {
        union() {
            adapted_part("Chest");
            // lower body
            difference() {
                union() {
                    hull() {
                        translate([0, 0, torso_bottom + bottom_chamfer])
                            linear_extrude(body_h - bottom_chamfer - step_h + 0.01) body_footprint();
                        translate([0, 0, torso_bottom]) linear_extrude(1) body_footprint(bottom_chamfer);
                    }
                    // 45-degree slope up to the Chest's front, instead of a flat step
                    hull() {
                        translate([0, 0, -step_h]) linear_extrude(0.01) body_footprint();
                        translate([0, 0, -0.01]) linear_extrude(0.02) footprint();
                    }
                }
                body_cavity();
                // keep the Chest's holes open down into the cavity
                translate([0, 0, roof_apex - 20]) linear_extrude(-roof_apex + 21)
                    inner_holes_2d();
            }
        }
        details();
        dial_cable_path();
    }
}
// main file
// Desk bottom plate, with pins for the PCA9685 and zip tie slots. See desk_parts.scad.
// Its rim presses up inside DeskBox. Print as exported, plate down.
include <desk_parts.scad>

desk_base();
